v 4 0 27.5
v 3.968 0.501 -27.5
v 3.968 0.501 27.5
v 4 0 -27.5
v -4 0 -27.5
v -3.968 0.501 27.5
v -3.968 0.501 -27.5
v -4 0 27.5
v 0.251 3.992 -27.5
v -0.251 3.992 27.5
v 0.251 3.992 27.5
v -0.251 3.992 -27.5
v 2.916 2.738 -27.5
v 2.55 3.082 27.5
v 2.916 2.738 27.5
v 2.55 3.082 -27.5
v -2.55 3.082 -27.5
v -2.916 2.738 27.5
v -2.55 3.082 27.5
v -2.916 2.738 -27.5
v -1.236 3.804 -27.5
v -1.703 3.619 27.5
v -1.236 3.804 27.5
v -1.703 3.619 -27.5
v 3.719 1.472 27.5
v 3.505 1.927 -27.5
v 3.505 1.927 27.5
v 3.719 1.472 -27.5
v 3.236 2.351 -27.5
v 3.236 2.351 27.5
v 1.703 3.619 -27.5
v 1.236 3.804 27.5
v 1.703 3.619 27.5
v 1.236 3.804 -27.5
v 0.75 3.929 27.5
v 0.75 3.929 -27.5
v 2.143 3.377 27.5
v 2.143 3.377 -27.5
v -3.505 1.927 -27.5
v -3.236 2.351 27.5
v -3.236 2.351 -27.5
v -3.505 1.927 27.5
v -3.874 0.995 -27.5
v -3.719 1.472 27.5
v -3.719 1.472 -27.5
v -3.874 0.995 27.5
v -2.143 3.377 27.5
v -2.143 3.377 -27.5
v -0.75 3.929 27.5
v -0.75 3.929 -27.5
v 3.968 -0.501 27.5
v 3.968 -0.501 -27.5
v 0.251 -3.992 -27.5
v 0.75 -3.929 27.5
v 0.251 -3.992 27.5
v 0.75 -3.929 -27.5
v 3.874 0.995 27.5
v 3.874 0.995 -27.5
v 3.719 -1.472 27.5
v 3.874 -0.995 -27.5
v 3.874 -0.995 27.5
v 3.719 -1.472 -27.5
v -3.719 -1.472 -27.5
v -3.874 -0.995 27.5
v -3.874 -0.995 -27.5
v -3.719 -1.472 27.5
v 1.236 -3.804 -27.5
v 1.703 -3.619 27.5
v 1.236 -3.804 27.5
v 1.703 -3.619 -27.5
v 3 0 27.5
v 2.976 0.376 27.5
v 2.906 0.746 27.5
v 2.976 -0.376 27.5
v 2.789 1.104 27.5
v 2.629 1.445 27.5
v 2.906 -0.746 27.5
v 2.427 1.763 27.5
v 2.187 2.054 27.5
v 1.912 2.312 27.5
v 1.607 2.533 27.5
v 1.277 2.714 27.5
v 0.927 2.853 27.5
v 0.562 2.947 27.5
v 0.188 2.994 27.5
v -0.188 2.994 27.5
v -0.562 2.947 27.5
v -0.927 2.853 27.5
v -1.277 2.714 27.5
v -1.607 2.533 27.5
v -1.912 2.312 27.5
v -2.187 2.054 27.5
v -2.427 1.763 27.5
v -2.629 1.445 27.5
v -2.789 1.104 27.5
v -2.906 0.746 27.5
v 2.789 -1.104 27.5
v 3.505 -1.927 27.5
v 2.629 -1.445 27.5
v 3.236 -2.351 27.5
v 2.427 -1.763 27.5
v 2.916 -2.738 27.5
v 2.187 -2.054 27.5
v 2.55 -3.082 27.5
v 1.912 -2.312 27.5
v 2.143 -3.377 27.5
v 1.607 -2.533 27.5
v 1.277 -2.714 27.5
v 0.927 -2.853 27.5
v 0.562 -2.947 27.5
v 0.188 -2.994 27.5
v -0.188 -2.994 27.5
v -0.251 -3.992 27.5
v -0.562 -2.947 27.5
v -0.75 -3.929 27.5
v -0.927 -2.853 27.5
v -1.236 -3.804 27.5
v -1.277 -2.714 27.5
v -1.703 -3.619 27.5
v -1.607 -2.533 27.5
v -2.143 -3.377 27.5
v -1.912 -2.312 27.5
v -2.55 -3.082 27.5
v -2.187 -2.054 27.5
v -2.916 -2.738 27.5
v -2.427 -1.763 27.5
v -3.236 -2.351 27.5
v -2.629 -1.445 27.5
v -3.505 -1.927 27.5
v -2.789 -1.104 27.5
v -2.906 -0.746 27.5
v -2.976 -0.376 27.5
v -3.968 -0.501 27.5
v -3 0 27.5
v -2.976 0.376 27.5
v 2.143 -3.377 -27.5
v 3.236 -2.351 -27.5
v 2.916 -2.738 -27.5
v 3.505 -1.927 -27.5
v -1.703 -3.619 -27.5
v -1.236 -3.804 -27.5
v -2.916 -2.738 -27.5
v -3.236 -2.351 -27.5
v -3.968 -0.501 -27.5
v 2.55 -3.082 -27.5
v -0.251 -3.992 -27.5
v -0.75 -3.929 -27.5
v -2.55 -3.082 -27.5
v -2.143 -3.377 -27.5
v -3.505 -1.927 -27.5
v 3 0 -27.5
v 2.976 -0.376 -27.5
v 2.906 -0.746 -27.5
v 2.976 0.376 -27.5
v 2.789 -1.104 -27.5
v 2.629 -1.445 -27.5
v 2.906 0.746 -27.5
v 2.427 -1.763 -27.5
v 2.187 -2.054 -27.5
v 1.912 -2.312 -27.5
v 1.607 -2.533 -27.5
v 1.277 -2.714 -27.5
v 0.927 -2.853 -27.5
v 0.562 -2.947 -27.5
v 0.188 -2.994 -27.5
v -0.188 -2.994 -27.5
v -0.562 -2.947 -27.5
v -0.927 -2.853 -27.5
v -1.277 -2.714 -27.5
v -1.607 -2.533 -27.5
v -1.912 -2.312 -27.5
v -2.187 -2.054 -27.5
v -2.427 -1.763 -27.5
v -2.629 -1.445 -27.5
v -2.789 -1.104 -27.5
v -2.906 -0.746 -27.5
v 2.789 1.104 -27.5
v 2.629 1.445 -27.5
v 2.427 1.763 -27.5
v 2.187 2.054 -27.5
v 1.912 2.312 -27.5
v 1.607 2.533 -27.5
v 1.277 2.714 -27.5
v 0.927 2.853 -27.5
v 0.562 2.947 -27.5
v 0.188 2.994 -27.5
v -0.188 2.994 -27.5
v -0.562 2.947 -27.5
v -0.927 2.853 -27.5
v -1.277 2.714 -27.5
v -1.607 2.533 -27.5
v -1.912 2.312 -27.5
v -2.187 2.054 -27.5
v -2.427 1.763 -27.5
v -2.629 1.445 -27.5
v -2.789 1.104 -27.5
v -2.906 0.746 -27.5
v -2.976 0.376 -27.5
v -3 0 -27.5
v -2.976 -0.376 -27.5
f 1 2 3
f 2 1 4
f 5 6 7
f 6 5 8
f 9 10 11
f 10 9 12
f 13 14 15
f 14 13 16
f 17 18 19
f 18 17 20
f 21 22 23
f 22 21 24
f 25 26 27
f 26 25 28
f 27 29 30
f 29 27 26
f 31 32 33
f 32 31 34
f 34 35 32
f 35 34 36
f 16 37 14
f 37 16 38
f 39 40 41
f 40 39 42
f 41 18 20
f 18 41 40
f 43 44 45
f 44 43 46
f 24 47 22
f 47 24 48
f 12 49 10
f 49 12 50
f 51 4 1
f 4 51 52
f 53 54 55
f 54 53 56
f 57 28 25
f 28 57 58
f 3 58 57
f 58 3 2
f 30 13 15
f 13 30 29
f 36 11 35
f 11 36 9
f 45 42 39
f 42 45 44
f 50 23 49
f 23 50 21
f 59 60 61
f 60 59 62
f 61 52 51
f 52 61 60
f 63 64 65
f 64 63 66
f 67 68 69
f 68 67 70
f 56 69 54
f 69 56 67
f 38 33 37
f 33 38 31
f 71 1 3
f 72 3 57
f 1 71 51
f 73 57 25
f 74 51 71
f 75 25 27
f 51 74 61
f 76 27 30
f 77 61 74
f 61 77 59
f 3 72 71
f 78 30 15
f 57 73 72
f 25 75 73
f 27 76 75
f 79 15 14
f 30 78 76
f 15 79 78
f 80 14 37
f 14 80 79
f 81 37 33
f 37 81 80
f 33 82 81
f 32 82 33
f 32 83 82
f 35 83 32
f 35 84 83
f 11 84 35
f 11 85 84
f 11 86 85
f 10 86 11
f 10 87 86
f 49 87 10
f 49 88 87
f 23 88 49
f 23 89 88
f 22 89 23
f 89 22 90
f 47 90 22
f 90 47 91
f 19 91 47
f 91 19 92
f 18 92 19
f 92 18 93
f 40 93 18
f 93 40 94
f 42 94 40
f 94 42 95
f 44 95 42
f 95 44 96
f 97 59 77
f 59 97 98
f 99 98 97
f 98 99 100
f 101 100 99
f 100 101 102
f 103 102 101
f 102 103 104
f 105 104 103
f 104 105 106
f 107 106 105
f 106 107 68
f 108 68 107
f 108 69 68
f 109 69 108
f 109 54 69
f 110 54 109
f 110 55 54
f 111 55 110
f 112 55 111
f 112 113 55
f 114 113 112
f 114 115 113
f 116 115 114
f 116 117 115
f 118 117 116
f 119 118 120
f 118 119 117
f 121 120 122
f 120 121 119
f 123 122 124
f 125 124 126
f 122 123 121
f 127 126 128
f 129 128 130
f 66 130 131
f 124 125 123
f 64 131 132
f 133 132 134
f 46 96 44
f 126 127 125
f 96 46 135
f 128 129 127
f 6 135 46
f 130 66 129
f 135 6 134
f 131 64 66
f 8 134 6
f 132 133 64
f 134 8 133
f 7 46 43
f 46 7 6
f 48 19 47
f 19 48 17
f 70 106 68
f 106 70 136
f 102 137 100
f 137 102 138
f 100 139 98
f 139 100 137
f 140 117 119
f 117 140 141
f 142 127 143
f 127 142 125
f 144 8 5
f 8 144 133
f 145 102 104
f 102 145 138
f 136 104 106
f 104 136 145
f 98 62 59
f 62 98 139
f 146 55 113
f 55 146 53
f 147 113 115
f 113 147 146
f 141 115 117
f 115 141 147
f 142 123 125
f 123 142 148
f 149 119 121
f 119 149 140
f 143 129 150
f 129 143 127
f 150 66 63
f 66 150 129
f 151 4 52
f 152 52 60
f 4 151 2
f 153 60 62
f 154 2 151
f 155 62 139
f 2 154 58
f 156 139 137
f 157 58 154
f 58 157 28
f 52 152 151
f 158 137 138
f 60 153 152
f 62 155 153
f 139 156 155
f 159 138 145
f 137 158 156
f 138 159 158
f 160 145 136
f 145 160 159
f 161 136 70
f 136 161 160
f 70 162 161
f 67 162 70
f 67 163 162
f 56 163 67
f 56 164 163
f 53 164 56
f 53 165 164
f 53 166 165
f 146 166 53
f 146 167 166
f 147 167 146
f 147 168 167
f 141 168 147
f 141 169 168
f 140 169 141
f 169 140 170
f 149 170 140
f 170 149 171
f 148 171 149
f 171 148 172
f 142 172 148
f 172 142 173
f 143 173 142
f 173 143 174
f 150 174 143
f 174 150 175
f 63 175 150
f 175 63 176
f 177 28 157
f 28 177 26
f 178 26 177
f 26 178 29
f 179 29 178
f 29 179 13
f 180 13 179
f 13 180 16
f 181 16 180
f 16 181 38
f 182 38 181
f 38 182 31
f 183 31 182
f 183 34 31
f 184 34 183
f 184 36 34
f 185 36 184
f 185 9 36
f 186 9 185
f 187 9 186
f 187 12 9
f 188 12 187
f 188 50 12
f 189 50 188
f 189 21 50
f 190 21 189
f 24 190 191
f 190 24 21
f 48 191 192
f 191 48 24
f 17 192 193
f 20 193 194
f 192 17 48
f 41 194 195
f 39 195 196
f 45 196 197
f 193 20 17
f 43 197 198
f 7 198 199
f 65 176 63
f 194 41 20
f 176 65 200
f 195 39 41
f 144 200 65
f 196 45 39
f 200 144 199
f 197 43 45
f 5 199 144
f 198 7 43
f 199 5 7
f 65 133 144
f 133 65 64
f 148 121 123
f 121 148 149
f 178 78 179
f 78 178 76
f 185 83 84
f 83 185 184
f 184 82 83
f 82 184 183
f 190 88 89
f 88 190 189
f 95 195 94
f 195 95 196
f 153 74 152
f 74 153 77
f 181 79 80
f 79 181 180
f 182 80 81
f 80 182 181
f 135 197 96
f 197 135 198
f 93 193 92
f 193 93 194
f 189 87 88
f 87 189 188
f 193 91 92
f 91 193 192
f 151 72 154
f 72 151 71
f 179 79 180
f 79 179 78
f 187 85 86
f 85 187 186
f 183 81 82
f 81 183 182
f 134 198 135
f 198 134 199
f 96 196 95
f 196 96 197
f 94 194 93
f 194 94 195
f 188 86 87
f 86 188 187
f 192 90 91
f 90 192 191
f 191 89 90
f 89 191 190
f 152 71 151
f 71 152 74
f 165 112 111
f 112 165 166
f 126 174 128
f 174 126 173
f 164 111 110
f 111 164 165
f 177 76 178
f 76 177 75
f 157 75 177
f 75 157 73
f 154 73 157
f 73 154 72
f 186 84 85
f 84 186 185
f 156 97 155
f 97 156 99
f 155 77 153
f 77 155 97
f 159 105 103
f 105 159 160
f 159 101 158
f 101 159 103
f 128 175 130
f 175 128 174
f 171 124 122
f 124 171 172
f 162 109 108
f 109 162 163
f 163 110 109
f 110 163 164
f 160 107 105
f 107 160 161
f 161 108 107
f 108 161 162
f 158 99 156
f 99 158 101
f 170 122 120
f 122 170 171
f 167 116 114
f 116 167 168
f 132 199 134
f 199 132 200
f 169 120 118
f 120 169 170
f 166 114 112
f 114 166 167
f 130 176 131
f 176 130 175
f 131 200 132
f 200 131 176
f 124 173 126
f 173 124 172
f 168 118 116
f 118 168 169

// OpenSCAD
$fn = 50;


difference() {
	union() {
		translate(v = [0, 0, -27.5000000000]) {
			cylinder(h = 55, r = 4.0000000000);
		}
	}
	union() {
		translate(v = [0, 0, -100.0000000000]) {
			cylinder(h = 200, r = 3.0000000000);
		}
	}
}
